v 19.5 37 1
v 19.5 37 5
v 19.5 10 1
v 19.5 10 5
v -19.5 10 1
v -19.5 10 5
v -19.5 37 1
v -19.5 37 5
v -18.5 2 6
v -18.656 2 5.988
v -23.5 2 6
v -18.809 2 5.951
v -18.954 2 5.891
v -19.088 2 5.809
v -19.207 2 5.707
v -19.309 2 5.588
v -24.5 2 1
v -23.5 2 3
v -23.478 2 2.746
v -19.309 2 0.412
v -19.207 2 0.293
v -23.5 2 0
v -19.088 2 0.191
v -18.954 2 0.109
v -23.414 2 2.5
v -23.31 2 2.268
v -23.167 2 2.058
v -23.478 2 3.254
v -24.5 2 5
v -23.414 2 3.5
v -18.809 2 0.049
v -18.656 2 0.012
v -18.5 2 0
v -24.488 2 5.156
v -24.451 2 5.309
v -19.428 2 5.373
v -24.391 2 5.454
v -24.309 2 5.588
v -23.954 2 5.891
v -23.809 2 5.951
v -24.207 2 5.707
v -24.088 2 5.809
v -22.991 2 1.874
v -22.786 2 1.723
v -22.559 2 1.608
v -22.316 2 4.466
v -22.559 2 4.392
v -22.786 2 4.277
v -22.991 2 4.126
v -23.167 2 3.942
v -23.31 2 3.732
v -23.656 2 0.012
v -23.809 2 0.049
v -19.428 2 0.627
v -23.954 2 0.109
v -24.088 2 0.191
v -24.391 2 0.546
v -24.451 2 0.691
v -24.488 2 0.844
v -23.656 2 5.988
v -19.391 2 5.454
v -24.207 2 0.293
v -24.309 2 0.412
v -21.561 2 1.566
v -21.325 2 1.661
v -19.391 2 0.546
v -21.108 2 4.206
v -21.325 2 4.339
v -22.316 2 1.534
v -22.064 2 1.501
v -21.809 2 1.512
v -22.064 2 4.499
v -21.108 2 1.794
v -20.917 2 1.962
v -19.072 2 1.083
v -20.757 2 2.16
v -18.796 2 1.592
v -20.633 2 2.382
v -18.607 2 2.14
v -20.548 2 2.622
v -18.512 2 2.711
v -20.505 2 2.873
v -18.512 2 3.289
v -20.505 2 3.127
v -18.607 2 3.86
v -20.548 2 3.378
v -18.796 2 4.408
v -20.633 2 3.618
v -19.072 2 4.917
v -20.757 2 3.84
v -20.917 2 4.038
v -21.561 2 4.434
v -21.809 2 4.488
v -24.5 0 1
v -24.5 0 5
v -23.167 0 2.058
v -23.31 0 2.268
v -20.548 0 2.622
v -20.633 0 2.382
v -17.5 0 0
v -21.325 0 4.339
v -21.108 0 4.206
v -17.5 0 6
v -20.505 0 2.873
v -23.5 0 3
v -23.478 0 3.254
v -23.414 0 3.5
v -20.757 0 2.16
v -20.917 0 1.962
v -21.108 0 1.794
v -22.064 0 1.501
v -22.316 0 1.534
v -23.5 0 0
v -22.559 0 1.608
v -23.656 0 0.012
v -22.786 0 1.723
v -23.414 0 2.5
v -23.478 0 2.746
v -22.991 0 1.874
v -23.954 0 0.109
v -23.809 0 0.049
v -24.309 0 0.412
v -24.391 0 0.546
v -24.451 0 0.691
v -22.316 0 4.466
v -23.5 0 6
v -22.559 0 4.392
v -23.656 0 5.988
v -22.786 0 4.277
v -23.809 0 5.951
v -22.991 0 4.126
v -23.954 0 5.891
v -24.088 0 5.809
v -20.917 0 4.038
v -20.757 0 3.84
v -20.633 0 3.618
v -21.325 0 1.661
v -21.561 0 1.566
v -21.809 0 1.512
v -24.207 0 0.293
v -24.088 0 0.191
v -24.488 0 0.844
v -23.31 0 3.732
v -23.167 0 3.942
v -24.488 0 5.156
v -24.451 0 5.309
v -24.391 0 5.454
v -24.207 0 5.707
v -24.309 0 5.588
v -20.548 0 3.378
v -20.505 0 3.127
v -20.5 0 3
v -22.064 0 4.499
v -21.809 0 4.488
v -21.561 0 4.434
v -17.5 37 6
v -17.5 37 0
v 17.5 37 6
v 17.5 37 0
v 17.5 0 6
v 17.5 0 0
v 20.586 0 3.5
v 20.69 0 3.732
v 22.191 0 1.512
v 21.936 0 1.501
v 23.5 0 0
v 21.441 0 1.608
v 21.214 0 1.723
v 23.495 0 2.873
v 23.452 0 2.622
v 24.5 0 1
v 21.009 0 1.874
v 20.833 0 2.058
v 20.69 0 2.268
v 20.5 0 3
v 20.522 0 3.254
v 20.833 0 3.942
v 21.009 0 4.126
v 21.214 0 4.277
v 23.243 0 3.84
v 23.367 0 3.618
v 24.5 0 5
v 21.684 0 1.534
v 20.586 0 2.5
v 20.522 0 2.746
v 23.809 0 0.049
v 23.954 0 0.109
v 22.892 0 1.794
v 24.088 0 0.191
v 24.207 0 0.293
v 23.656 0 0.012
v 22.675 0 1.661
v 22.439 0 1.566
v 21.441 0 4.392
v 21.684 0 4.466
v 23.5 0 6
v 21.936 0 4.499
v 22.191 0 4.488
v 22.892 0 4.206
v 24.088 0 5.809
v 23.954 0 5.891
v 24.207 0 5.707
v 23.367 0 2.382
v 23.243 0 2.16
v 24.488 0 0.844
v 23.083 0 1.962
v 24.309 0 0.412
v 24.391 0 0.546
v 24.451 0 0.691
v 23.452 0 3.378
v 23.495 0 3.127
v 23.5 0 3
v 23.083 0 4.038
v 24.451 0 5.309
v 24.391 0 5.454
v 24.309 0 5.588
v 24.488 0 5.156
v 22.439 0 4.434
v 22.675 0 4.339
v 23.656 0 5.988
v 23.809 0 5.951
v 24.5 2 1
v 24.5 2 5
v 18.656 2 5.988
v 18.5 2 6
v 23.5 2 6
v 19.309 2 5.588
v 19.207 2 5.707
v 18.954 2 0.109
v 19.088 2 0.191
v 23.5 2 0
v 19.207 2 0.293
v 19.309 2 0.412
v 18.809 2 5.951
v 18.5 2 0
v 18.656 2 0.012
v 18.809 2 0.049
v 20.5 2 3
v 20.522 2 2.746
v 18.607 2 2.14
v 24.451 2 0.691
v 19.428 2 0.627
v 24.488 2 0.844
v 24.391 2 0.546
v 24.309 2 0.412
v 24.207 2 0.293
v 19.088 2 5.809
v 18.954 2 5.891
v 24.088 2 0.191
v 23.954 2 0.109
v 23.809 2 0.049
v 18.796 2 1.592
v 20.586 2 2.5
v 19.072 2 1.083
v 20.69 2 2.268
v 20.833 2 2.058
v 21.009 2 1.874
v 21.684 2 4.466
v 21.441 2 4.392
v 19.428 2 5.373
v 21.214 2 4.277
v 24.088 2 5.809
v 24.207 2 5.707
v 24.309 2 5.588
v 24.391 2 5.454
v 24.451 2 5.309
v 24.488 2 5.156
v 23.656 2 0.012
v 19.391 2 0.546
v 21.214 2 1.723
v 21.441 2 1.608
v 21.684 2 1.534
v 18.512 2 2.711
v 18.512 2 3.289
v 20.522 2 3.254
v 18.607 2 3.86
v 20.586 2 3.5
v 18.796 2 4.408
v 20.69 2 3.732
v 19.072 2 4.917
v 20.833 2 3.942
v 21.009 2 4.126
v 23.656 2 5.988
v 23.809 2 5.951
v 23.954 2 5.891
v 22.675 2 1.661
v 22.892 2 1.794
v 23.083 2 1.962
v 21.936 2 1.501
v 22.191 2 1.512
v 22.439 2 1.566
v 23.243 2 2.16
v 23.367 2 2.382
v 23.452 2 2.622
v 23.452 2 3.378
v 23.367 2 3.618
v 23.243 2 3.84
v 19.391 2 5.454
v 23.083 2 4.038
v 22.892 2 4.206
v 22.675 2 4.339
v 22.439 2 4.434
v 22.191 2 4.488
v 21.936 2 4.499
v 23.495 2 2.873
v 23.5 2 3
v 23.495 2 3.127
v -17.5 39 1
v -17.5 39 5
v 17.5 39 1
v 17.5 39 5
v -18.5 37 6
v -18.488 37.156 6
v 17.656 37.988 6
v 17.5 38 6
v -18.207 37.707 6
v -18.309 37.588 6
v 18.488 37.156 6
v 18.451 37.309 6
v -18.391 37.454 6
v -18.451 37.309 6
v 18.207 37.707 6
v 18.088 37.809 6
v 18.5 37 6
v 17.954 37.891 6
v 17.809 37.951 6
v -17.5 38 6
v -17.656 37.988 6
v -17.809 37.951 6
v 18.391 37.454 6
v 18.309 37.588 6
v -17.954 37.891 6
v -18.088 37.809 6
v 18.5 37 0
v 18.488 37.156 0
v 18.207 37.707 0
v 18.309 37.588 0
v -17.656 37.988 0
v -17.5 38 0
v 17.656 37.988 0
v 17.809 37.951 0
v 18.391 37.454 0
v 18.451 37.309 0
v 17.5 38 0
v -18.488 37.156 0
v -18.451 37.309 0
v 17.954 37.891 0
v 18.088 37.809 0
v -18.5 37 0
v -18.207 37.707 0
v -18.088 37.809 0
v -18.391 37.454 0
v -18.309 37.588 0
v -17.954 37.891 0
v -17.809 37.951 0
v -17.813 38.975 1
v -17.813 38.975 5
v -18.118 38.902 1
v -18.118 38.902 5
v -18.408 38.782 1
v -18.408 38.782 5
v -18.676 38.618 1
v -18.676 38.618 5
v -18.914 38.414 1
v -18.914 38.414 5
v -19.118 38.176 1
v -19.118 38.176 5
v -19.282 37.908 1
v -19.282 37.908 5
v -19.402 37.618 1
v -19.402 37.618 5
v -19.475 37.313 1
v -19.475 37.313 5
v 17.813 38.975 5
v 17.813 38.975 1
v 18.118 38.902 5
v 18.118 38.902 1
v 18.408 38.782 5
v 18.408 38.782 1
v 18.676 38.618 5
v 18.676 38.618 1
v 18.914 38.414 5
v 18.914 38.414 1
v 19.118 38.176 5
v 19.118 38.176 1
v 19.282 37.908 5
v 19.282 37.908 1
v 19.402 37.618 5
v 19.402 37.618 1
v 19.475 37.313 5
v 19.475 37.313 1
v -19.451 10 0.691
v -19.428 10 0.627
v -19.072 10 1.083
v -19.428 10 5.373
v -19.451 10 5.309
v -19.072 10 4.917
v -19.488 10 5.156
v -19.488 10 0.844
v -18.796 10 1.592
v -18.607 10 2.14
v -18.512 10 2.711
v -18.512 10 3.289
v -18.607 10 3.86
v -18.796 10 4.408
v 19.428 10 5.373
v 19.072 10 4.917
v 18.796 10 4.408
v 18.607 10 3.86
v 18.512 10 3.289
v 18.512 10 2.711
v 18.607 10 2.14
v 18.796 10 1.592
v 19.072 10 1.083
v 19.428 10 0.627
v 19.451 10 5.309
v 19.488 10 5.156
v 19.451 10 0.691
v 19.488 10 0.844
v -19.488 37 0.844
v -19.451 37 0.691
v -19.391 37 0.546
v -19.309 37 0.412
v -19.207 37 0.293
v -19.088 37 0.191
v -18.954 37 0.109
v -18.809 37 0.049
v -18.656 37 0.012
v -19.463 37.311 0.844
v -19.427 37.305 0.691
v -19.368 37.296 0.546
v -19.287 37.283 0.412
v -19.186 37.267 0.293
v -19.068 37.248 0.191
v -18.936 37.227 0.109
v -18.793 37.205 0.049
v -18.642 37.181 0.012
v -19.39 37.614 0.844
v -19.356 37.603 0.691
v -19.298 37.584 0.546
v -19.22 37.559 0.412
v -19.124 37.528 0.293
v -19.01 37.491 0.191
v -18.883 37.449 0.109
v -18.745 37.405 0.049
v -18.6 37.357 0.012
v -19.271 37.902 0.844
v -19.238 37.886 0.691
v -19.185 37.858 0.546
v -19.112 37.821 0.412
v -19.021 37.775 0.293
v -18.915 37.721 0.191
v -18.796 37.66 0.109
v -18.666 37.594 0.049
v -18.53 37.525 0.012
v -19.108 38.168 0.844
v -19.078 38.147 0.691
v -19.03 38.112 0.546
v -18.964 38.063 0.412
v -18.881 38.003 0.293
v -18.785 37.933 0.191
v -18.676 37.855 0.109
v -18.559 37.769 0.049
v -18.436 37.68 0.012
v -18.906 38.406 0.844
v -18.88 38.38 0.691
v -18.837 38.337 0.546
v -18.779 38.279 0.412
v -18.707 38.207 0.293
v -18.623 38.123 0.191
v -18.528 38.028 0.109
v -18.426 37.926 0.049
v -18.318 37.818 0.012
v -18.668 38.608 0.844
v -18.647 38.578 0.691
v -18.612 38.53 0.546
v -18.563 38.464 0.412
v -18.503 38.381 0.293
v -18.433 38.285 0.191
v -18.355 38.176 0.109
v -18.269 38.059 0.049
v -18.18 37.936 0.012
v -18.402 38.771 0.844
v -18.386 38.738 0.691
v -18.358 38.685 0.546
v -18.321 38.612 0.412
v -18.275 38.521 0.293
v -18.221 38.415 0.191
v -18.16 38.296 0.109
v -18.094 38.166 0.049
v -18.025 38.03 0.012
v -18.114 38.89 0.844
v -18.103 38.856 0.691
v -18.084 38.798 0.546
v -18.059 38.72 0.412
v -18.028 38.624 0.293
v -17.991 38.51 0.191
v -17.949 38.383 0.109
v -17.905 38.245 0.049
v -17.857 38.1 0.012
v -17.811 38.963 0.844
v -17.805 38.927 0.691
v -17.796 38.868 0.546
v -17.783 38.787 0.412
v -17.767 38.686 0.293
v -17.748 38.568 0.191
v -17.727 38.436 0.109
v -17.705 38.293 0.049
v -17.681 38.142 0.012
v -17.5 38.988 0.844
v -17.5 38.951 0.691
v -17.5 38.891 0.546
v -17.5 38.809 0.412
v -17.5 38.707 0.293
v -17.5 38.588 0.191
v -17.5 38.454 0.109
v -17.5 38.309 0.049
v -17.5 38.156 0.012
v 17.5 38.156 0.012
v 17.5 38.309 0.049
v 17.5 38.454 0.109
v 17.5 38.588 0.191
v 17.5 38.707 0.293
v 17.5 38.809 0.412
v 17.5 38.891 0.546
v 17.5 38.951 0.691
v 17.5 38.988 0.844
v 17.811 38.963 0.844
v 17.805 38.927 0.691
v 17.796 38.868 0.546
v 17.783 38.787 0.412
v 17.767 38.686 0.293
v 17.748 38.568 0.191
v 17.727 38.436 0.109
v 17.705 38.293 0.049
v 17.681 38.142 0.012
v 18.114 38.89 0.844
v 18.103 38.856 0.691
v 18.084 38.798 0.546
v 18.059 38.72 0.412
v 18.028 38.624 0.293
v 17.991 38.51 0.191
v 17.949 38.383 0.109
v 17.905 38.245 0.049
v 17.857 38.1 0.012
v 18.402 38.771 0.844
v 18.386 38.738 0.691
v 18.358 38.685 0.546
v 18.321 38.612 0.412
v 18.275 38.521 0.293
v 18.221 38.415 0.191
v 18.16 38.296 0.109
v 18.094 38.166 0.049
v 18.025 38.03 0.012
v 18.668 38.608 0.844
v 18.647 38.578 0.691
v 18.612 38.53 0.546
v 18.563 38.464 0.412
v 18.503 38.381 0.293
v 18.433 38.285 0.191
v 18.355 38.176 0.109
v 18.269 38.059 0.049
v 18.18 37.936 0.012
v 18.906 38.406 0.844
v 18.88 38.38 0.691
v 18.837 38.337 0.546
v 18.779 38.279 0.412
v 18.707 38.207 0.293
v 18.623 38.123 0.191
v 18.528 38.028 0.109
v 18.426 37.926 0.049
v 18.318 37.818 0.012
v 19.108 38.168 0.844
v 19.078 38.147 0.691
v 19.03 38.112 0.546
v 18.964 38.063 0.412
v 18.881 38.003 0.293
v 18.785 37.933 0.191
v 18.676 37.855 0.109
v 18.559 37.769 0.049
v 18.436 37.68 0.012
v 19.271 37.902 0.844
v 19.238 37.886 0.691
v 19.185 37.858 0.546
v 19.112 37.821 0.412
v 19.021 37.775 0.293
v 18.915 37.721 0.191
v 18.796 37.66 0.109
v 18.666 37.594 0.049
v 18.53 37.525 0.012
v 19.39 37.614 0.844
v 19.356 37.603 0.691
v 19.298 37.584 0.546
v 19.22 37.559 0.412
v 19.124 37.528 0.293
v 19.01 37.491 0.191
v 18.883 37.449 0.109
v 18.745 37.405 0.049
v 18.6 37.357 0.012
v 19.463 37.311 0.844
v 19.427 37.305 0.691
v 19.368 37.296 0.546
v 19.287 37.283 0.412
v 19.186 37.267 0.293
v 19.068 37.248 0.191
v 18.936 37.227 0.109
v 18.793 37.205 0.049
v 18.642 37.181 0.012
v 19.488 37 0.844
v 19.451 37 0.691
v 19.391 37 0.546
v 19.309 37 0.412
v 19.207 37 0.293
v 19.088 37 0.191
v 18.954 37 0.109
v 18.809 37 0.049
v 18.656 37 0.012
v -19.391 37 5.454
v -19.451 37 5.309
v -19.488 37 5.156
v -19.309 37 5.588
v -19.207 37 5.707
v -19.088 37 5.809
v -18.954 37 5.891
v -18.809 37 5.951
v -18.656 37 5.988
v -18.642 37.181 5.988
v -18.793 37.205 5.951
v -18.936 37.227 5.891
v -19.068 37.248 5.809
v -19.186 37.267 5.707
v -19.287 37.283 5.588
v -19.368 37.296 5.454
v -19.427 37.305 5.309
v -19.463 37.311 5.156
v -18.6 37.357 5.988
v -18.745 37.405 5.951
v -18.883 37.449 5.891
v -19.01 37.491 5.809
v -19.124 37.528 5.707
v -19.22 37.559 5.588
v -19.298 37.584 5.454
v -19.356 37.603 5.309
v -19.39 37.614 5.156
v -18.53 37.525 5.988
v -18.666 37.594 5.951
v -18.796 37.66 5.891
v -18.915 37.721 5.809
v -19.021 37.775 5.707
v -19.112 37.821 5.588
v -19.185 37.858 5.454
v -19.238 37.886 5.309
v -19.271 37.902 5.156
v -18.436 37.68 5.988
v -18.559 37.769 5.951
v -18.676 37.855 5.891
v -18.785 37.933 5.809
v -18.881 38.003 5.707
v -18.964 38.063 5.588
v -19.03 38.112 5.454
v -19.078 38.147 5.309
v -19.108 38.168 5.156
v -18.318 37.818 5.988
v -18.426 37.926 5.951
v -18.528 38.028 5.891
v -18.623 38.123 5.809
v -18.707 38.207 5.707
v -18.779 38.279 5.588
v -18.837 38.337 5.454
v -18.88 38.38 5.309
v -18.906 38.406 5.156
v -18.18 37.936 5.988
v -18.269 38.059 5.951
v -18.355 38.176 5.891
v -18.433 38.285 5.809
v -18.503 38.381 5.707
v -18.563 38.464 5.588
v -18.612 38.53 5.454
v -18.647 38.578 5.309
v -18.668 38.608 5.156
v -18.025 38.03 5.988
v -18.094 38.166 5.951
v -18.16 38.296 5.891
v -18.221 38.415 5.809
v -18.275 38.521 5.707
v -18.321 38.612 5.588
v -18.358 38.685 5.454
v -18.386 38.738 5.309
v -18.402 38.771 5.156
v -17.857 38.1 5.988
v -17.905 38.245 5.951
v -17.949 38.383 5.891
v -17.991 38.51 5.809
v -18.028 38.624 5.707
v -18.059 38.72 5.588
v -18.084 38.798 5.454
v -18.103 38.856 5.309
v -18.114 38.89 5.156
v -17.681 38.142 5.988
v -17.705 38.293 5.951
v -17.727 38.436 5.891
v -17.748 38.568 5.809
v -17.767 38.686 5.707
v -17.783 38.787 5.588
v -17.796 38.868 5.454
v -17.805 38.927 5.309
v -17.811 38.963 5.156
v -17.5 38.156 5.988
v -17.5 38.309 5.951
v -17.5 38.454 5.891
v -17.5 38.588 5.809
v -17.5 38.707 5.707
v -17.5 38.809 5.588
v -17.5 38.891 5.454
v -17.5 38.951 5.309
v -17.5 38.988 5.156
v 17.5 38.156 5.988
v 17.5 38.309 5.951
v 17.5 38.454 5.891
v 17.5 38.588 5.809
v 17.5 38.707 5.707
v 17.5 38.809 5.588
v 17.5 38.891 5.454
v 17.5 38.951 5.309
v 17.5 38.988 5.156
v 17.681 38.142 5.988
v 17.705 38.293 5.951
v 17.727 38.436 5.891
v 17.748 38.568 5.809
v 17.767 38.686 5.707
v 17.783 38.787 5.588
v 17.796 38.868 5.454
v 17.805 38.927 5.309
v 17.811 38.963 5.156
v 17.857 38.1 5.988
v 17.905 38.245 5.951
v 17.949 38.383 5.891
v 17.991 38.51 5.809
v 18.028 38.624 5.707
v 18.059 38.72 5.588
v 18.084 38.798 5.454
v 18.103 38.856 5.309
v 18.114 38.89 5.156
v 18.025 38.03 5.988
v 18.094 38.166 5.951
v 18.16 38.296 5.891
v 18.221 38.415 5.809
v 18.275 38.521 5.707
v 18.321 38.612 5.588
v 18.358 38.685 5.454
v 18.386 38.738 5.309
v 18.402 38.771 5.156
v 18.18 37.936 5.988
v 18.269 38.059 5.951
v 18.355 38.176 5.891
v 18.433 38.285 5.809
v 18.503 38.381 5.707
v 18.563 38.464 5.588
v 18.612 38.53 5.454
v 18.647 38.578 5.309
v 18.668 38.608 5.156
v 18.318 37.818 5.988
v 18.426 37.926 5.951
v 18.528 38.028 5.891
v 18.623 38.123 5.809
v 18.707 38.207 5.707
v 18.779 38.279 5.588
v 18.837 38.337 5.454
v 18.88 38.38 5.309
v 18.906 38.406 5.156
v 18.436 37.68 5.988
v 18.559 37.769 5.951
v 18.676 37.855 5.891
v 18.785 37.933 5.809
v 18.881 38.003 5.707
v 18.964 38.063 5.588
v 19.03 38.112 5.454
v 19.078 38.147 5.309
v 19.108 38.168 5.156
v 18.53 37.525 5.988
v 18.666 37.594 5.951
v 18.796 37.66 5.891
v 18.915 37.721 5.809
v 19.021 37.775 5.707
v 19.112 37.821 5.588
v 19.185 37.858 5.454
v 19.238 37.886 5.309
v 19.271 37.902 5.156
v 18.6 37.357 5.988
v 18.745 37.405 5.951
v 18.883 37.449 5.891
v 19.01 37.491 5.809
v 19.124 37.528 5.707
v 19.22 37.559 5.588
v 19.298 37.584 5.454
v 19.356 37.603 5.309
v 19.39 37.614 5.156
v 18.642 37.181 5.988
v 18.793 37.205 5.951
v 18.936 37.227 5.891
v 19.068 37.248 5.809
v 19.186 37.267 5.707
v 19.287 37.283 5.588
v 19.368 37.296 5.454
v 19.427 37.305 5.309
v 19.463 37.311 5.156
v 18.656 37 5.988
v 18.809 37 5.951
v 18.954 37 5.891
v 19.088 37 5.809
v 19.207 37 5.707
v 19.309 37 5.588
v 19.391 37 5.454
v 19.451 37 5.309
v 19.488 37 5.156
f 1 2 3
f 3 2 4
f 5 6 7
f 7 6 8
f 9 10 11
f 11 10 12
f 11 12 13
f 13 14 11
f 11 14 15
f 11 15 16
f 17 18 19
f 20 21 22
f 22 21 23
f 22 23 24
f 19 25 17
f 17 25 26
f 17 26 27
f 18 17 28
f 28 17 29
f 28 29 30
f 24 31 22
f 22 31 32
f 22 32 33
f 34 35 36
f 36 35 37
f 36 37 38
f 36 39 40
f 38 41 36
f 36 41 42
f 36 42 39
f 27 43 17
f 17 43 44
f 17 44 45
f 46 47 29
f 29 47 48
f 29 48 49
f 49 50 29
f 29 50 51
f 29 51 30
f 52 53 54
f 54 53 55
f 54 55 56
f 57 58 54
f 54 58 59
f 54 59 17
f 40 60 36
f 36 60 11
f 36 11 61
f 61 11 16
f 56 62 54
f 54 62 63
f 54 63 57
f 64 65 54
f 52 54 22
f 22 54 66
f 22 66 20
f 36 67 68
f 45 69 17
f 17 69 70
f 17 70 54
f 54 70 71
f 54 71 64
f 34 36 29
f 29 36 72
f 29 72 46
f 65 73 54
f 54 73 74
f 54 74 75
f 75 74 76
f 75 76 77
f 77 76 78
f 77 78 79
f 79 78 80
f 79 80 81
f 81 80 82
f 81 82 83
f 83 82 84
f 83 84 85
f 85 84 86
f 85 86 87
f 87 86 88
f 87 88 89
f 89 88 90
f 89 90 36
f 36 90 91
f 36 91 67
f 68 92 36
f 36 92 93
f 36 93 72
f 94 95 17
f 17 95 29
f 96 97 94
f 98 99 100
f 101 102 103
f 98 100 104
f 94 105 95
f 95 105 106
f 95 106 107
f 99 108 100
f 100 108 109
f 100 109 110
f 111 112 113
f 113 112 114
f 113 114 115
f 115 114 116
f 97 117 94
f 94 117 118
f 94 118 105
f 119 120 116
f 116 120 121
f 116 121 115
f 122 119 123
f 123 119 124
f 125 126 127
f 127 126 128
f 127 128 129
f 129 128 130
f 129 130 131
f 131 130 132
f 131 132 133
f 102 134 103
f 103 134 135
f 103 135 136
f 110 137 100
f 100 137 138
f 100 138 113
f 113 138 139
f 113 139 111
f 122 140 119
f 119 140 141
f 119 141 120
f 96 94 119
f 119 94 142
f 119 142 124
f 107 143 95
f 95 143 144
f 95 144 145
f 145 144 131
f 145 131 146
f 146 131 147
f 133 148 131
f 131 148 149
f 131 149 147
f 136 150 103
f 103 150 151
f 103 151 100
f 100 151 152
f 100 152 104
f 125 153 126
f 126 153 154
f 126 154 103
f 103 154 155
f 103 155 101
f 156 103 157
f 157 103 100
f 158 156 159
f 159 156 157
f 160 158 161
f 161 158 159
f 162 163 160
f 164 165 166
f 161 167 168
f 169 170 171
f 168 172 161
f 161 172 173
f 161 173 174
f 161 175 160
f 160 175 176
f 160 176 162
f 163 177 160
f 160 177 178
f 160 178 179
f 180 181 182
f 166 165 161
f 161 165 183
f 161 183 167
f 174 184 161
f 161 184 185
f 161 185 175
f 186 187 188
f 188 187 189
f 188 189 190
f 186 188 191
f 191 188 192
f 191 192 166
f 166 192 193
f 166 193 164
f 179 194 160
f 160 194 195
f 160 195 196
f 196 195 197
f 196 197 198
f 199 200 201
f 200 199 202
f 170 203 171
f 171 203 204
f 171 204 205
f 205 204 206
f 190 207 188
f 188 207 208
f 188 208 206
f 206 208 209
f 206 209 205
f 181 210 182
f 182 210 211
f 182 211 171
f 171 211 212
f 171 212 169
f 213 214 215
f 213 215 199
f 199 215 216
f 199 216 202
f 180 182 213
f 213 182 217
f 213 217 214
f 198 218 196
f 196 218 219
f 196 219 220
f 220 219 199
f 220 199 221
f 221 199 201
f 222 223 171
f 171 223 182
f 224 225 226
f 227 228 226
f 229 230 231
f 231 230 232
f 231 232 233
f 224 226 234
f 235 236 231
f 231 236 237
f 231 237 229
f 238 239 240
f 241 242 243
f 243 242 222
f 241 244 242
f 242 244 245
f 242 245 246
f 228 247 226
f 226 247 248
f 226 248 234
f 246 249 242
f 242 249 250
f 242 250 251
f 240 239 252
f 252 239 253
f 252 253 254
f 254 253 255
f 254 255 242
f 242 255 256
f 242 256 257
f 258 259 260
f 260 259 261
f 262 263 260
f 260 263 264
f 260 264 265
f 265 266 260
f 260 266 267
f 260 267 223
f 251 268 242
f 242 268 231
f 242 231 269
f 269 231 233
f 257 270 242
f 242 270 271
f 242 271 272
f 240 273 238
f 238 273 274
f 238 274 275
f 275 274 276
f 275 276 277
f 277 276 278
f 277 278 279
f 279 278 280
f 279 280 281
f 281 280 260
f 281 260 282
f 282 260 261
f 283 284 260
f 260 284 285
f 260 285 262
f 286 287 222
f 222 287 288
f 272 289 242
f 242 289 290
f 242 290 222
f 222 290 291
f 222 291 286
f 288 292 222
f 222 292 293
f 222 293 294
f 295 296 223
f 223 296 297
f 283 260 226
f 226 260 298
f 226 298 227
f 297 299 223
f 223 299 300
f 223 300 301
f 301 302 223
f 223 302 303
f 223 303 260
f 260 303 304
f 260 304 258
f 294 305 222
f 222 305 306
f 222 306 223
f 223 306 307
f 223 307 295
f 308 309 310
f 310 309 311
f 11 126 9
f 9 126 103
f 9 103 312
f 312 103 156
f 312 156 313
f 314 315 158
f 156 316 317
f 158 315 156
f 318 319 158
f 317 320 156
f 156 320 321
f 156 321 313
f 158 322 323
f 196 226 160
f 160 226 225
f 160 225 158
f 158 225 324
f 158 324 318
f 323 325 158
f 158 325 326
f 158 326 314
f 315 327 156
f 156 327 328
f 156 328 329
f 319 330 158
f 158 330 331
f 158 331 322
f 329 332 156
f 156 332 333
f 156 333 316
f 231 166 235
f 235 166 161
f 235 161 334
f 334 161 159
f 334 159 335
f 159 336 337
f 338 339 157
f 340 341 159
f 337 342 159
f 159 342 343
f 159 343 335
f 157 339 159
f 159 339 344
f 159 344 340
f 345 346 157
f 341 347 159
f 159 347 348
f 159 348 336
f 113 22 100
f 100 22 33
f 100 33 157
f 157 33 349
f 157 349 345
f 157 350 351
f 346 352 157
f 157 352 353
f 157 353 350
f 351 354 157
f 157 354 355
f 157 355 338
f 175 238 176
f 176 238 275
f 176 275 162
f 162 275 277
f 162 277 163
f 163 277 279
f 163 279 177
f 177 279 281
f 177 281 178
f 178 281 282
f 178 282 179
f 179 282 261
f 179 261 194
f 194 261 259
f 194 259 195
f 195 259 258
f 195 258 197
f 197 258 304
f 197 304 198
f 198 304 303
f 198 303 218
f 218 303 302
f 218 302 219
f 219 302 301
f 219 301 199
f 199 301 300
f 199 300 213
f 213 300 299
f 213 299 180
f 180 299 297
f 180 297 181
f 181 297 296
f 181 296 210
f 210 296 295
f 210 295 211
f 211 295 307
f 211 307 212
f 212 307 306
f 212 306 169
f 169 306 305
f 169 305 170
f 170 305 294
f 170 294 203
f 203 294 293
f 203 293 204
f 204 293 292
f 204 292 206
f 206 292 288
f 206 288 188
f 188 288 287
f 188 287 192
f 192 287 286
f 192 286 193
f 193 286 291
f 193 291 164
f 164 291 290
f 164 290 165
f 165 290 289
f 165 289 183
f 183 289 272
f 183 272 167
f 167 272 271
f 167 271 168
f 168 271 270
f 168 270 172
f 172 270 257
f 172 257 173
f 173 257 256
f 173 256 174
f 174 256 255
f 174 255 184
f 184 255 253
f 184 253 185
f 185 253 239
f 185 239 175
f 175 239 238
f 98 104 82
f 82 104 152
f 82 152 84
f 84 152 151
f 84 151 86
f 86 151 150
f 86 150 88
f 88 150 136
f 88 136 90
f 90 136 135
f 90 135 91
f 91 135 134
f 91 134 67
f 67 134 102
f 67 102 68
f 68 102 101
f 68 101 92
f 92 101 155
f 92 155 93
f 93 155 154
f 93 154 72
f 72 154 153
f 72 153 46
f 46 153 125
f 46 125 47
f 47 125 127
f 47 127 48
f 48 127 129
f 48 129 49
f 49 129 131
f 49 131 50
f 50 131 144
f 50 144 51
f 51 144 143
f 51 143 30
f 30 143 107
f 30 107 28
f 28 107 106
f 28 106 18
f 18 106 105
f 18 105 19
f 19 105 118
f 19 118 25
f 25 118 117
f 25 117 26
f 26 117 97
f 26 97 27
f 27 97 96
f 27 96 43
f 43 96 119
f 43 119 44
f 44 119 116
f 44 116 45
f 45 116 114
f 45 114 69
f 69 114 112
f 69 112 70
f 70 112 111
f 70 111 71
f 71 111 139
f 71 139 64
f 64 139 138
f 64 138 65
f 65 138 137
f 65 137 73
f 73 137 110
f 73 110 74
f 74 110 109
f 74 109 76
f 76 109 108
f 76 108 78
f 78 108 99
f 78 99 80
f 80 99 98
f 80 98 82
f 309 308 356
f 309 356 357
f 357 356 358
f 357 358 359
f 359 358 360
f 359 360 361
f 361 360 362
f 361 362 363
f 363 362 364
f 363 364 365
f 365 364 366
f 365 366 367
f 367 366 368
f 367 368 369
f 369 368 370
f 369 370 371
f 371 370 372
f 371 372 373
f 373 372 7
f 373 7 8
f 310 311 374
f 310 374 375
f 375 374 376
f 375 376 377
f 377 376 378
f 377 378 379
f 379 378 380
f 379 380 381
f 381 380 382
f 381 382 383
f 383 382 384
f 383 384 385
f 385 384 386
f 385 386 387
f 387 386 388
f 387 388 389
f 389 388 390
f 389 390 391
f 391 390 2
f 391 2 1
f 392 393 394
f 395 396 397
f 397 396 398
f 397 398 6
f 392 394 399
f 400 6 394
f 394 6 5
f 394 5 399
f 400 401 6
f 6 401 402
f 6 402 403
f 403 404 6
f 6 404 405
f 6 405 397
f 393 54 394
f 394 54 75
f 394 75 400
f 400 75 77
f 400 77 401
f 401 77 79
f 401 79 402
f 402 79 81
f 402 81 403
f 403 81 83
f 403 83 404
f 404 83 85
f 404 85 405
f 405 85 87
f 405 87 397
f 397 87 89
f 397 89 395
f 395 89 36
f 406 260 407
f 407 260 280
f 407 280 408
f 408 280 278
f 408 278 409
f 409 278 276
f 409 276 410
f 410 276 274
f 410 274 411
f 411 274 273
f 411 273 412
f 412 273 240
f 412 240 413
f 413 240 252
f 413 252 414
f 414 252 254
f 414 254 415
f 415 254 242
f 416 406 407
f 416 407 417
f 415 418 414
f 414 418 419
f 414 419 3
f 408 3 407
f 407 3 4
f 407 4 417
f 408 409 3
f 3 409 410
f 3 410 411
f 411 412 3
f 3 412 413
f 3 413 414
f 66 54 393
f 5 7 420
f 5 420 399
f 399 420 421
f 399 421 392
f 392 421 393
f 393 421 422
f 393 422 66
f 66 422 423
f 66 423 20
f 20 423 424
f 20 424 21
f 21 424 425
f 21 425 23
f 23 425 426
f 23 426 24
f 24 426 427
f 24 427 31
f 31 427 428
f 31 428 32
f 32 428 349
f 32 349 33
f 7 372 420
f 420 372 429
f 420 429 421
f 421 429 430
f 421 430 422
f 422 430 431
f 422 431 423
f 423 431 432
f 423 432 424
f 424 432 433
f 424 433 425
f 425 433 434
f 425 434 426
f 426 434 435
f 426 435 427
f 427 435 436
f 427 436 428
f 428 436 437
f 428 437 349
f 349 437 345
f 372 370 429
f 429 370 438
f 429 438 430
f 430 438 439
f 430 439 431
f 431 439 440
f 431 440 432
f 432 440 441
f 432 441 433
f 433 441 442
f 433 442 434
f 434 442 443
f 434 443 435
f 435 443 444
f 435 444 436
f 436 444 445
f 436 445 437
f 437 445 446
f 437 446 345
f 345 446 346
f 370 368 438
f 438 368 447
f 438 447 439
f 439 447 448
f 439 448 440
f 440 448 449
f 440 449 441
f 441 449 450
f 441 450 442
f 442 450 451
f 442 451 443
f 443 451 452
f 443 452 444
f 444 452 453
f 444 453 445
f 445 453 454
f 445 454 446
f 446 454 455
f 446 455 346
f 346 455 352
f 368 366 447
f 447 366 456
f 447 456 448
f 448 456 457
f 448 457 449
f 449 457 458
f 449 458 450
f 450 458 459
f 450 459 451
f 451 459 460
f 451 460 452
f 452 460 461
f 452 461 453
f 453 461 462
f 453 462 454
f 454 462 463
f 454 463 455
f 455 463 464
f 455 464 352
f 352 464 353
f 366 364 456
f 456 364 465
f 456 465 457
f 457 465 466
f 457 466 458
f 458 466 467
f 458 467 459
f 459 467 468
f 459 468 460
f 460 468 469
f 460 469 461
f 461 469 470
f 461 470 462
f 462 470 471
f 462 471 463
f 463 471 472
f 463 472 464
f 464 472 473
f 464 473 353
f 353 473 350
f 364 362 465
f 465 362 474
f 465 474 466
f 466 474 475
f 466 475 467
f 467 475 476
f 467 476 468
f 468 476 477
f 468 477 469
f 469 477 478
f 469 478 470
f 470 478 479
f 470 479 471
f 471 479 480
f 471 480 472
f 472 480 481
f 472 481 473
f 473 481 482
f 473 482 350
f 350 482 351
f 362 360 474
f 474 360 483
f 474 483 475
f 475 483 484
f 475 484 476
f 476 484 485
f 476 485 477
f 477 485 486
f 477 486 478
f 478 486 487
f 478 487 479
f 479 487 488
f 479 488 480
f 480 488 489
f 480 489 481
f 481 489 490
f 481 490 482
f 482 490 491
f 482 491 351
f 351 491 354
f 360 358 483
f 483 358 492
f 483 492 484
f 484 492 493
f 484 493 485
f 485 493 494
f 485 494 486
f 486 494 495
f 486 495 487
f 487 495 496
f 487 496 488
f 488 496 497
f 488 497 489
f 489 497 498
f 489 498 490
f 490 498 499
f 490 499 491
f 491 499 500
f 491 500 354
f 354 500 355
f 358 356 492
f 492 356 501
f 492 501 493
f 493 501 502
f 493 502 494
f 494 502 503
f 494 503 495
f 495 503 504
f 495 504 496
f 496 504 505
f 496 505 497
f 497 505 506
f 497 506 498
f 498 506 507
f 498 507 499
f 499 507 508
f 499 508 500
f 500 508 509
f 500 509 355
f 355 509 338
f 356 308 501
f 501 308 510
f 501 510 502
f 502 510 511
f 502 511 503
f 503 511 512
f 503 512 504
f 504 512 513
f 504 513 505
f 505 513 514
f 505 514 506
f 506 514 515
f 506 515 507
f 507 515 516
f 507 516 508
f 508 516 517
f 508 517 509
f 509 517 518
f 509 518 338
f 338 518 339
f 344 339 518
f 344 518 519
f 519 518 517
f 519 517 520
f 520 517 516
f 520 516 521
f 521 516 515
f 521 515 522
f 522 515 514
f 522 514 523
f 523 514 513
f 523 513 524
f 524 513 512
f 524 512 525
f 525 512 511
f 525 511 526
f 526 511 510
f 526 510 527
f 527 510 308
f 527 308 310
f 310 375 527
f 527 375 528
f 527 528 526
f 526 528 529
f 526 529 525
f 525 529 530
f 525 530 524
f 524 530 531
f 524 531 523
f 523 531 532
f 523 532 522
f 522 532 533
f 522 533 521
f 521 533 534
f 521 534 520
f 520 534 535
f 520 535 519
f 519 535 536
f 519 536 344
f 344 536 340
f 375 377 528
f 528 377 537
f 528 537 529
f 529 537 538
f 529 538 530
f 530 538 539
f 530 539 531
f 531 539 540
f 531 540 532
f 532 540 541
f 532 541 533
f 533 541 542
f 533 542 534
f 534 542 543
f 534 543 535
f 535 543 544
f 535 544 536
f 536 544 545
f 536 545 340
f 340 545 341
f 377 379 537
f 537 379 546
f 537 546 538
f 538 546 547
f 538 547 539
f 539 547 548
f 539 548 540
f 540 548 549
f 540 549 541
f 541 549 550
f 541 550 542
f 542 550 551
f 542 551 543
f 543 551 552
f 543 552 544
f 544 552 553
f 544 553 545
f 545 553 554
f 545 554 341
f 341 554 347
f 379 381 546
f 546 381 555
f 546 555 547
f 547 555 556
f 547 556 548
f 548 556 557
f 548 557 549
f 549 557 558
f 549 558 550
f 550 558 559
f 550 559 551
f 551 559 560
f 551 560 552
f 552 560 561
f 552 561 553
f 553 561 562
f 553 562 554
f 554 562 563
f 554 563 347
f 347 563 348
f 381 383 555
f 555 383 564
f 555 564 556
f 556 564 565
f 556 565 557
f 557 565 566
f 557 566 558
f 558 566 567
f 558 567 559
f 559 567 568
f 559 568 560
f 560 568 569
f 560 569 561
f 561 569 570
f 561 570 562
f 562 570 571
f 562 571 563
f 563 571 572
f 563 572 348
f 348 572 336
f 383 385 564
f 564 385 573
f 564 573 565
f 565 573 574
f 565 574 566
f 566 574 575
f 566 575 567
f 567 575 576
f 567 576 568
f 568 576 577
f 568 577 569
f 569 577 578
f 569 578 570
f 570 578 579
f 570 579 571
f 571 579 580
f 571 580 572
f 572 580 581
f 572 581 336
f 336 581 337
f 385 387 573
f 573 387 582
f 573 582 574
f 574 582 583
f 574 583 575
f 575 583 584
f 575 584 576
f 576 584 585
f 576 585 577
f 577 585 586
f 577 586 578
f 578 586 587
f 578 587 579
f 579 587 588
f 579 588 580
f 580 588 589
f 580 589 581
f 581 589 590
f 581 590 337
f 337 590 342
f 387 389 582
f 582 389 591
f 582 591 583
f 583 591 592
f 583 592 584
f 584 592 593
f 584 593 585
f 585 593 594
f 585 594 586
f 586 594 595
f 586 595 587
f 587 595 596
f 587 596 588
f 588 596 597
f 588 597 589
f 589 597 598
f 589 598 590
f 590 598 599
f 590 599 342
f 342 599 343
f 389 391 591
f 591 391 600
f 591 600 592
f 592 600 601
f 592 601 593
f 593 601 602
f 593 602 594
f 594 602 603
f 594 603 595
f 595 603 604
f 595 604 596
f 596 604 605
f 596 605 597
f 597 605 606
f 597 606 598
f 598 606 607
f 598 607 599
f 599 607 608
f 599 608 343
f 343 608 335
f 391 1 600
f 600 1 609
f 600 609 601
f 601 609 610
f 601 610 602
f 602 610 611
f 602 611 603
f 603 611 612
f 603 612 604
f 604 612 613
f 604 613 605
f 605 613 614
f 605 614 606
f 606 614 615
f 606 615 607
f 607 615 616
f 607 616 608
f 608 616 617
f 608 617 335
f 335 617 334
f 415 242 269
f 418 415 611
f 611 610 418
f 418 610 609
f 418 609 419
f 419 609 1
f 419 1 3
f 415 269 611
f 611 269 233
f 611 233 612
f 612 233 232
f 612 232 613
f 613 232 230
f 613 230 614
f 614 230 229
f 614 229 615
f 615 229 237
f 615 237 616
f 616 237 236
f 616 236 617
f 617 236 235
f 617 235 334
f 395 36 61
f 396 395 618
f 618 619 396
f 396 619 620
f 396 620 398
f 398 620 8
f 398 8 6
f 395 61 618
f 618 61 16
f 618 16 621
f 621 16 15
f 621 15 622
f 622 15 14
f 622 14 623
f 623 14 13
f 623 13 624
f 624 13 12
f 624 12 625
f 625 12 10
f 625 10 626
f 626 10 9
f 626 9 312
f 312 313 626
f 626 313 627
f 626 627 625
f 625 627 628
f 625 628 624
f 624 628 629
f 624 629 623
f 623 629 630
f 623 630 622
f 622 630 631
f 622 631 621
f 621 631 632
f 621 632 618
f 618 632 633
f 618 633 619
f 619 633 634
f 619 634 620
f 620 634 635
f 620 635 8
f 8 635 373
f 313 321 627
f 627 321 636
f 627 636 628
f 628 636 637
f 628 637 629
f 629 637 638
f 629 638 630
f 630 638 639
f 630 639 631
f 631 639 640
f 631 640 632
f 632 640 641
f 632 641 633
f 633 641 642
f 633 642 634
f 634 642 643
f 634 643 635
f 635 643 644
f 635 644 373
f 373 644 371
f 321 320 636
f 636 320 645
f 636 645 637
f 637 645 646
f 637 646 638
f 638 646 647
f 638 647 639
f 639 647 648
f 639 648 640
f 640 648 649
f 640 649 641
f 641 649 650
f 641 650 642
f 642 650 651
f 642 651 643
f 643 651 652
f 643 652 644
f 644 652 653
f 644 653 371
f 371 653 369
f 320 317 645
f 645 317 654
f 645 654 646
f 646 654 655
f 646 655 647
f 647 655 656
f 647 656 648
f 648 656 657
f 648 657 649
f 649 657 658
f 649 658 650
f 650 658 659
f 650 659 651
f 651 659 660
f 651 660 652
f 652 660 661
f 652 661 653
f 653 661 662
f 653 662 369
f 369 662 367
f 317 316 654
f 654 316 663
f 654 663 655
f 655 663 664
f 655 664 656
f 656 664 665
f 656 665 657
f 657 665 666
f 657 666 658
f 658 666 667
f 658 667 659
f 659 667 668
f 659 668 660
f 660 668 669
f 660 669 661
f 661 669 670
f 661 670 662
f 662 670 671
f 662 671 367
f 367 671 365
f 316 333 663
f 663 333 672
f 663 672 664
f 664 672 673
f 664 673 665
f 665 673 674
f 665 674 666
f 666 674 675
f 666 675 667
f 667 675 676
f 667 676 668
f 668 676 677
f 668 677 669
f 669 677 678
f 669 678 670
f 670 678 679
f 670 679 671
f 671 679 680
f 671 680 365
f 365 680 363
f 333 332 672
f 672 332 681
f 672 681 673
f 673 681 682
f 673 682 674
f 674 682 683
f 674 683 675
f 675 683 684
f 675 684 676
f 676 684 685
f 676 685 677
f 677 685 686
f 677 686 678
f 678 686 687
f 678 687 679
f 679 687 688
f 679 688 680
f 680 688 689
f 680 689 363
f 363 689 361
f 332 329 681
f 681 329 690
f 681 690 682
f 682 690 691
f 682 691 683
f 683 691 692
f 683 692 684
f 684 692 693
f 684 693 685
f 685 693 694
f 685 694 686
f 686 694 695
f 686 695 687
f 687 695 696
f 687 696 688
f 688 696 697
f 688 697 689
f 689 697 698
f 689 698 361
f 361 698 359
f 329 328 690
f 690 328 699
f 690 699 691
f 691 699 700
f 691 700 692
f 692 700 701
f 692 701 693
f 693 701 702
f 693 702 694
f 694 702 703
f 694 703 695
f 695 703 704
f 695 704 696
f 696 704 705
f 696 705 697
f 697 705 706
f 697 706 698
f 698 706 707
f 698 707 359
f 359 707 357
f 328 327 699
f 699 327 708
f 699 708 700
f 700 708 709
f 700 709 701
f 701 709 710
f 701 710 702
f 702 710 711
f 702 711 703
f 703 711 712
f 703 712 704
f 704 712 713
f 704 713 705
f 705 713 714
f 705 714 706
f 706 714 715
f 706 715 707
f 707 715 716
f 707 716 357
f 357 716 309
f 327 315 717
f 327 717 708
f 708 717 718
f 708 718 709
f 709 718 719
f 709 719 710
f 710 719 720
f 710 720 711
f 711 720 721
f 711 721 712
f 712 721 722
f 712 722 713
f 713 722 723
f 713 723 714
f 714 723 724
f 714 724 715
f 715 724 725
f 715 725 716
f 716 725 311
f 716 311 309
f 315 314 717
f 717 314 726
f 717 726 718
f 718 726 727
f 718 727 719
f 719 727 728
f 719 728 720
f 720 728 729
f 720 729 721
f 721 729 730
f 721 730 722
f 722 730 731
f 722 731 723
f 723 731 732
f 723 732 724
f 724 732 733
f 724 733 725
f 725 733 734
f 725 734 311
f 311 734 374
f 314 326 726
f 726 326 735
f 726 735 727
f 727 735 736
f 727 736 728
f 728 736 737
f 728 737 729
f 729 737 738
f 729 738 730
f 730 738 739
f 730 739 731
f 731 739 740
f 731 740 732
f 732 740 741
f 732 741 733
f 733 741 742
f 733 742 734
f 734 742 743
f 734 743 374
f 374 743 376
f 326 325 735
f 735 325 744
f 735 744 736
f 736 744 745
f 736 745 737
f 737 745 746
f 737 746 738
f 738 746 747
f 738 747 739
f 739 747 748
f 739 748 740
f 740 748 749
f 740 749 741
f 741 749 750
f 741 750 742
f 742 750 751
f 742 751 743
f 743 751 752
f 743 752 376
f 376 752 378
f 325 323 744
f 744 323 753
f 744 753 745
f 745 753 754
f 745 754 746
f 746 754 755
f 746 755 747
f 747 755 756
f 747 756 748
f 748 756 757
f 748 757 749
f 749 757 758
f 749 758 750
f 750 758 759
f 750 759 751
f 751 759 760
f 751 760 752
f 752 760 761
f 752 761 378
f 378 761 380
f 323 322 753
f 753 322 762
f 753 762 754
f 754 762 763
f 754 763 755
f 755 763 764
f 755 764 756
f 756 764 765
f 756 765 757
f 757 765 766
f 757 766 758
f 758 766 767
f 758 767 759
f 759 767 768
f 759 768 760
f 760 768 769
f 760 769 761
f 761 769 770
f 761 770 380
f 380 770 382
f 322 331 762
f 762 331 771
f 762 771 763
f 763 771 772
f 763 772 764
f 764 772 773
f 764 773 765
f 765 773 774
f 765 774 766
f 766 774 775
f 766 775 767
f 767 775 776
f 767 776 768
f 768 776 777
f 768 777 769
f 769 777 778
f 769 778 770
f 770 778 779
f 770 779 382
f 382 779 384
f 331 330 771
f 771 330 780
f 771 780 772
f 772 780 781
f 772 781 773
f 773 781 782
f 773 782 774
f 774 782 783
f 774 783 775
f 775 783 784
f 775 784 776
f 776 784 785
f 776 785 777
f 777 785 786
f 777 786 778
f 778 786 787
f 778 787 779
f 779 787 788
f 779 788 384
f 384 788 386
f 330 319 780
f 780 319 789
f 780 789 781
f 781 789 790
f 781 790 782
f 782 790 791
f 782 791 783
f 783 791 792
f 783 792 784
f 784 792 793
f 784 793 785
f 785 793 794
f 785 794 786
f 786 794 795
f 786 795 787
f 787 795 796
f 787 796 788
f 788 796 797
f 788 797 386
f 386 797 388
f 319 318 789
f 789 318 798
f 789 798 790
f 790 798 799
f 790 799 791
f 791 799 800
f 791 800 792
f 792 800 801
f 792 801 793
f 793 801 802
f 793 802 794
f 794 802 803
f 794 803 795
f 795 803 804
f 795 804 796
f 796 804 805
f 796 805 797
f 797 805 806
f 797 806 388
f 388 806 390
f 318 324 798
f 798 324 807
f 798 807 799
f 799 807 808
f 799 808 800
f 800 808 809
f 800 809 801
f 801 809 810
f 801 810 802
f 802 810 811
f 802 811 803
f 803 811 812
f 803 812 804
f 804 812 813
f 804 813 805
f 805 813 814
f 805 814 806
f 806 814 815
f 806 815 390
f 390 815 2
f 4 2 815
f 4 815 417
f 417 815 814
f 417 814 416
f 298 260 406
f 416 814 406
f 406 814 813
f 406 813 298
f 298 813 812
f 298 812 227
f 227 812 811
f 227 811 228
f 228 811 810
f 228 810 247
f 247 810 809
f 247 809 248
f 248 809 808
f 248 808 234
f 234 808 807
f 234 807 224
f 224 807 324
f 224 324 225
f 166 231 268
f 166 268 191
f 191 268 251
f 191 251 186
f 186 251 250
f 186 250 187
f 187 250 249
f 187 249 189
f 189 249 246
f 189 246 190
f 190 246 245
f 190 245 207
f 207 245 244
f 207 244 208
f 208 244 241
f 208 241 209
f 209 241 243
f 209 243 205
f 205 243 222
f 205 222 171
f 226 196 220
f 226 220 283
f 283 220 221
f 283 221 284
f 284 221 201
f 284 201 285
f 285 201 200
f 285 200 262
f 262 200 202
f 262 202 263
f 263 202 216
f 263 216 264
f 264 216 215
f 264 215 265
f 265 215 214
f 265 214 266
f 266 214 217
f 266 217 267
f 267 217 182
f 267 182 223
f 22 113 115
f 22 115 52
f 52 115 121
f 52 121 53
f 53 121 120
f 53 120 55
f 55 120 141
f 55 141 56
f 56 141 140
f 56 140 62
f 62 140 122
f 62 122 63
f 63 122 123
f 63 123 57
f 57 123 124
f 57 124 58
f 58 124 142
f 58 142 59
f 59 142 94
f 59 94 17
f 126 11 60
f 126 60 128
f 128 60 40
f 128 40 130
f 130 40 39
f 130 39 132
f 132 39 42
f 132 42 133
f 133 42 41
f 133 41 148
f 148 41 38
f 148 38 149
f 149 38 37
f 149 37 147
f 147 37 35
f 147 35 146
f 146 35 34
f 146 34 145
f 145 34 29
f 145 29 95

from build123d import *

# Parameters (mm, degrees)
BOSS_EXTRUDE1_DEPTH = 6
SKETCH2_R           = 1.5
CUT_EXTRUDE1_DEPTH  = 2
FILLET1_R           = 2
SKETCH3_R           = 3.5
CUT_EXTRUDE2_DEPTH  = 8
FILLET2_R           = 1


with BuildPart() as part:
    # Sketch1 → Boss-Extrude1 (new body)
    with BuildSketch(Plane.XY):
        Polygon((-24.5, 2), (-24.5, 0), (-17.5, 0), (-17.5, 37), (0, 37), (0, 39), (-19.5, 39), (-19.5, 2), align=None)
        Polygon((0, 39), (0, 37), (17.5, 37), (17.5, 0), (24.5, 0), (24.5, 2), (19.5, 2), (19.5, 39), align=None)
    extrude(amount=BOSS_EXTRUDE1_DEPTH)

    # Sketch2 → Cut-Extrude1 (cut)
    with BuildSketch(Plane(origin=(0, 2, 0), x_dir=(1, 0, 0), z_dir=(0, 1, 0))):
        with Locations(Location((-22, -3, 0), (0, 0, 180))):
            Circle(SKETCH2_R)
        with Locations((22, -3)):
            Circle(SKETCH2_R)
    extrude(amount=-CUT_EXTRUDE1_DEPTH, mode=Mode.SUBTRACT)

    # Fillet1
    fillet1_edges = [part.edges().sort_by_distance(p)[0] for p in [
        (-19.5, 39, 3),
        (19.5, 39, 3),
    ]]
    fillet(fillet1_edges, radius=FILLET1_R)

    # Sketch3 → Cut-Extrude2 (cut)
    with BuildSketch(Plane(origin=(0, 2, 0), x_dir=(1, 0, 0), z_dir=(0, 1, 0))):
        with Locations((-22, -3)):
            Circle(SKETCH3_R)
        with Locations((22, -3)):
            Circle(SKETCH3_R)
    extrude(amount=CUT_EXTRUDE2_DEPTH, mode=Mode.SUBTRACT)

    # Fillet2
    # the kernel refuses this fillet: 1 mm, written as the material it takes off along each edge
    with BuildSketch(Plane(origin=(19.5, 2, 0), x_dir=(0, 0, 1), z_dir=(0, 1, 0)), Plane(origin=(19.5, 2, 6), x_dir=(-1, 0, 0), z_dir=(0, 1, 0)), Plane(origin=(17.5, 39, 0), x_dir=(0, 0, 1), z_dir=(-1, 0, 0)), Plane(origin=(-17.5, 39, 6), x_dir=(0, 0, -1), z_dir=(1, 0, 0)), Plane(origin=(-19.5, 37, 6), x_dir=(1, 0, 0), z_dir=(0, -1, 0)), Plane(origin=(-19.5, 37, 0), x_dir=(0, 0, 1), z_dir=(0, -1, 0))) as fillet2_piece_1:
        with BuildLine():
            CenterArc((FILLET2_R, -FILLET2_R), FILLET2_R, 90, 90)
            Line((0, -FILLET2_R), (0, 0))
            Line((0, 0), (FILLET2_R, 0))
        make_face()
    extrude(amount=35, mode=Mode.SUBTRACT)
    with BuildSketch(Plane(origin=(17.5, 37, 6), x_dir=(0, 1, 0), z_dir=(-1, 0, 0))) as fillet2_piece_2:
        with BuildLine():
            CenterArc((2 - FILLET2_R, FILLET2_R), FILLET2_R, 270, 90)
            Line((2, FILLET2_R), (2, 0))
            Line((2, 0), (2 - FILLET2_R, 0))
        make_face()
    revolve(axis=Axis((17.5, 37, 6), (0, 0, -1)), revolution_arc=90, mode=Mode.SUBTRACT)
    with BuildSketch(Plane(origin=(17.5, 37, 0), x_dir=(0, 1, 0), z_dir=(-1, 0, 0))) as fillet2_piece_3:
        with BuildLine():
            CenterArc((2 - FILLET2_R, -FILLET2_R), FILLET2_R, 0, 90)
            Line((2 - FILLET2_R, 0), (2, 0))
            Line((2, 0), (2, -FILLET2_R))
        make_face()
    revolve(axis=Axis((17.5, 37, 0), (0, 0, -1)), revolution_arc=90, mode=Mode.SUBTRACT)
    with BuildSketch(Plane(origin=(-17.5, 37, 6), x_dir=(0, 1, 0), z_dir=(1, 0, 0))) as fillet2_piece_4:
        with BuildLine():
            CenterArc((2 - FILLET2_R, -FILLET2_R), FILLET2_R, 0, 90)
            Line((2, -FILLET2_R), (2, 0))
            Line((2, 0), (2 - FILLET2_R, 0))
        make_face()
    revolve(axis=Axis((-17.5, 37, 6), (0, 0, 1)), revolution_arc=90, mode=Mode.SUBTRACT)
    with BuildSketch(Plane(origin=(-17.5, 37, 0), x_dir=(0, 1, 0), z_dir=(1, 0, 0))) as fillet2_piece_5:
        with BuildLine():
            CenterArc((2 - FILLET2_R, FILLET2_R), FILLET2_R, 270, 90)
            Line((2 - FILLET2_R, 0), (2, 0))
            Line((2, 0), (2, FILLET2_R))
        make_face()
    revolve(axis=Axis((-17.5, 37, 0), (0, 0, 1)), revolution_arc=90, mode=Mode.SUBTRACT)
    with BuildSketch(Plane(origin=(24.5, -2.5, 0), x_dir=(0, 0, 1), z_dir=(0, 1, 0)), Plane(origin=(24.5, -2.5, 6), x_dir=(-1, 0, 0), z_dir=(0, 1, 0)), Plane(origin=(-24.5, 4.5, 0), x_dir=(0, 0, 1), z_dir=(0, -1, 0)), Plane(origin=(-24.5, 4.5, 6), x_dir=(1, 0, 0), z_dir=(0, -1, 0))) as fillet2_piece_6:
        with BuildLine():
            CenterArc((FILLET2_R, -FILLET2_R), FILLET2_R, 90, 90)
            Line((0, -FILLET2_R), (0, 0))
            Line((0, 0), (FILLET2_R, 0))
        make_face()
    extrude(amount=7, mode=Mode.SUBTRACT)


solid = part.part
